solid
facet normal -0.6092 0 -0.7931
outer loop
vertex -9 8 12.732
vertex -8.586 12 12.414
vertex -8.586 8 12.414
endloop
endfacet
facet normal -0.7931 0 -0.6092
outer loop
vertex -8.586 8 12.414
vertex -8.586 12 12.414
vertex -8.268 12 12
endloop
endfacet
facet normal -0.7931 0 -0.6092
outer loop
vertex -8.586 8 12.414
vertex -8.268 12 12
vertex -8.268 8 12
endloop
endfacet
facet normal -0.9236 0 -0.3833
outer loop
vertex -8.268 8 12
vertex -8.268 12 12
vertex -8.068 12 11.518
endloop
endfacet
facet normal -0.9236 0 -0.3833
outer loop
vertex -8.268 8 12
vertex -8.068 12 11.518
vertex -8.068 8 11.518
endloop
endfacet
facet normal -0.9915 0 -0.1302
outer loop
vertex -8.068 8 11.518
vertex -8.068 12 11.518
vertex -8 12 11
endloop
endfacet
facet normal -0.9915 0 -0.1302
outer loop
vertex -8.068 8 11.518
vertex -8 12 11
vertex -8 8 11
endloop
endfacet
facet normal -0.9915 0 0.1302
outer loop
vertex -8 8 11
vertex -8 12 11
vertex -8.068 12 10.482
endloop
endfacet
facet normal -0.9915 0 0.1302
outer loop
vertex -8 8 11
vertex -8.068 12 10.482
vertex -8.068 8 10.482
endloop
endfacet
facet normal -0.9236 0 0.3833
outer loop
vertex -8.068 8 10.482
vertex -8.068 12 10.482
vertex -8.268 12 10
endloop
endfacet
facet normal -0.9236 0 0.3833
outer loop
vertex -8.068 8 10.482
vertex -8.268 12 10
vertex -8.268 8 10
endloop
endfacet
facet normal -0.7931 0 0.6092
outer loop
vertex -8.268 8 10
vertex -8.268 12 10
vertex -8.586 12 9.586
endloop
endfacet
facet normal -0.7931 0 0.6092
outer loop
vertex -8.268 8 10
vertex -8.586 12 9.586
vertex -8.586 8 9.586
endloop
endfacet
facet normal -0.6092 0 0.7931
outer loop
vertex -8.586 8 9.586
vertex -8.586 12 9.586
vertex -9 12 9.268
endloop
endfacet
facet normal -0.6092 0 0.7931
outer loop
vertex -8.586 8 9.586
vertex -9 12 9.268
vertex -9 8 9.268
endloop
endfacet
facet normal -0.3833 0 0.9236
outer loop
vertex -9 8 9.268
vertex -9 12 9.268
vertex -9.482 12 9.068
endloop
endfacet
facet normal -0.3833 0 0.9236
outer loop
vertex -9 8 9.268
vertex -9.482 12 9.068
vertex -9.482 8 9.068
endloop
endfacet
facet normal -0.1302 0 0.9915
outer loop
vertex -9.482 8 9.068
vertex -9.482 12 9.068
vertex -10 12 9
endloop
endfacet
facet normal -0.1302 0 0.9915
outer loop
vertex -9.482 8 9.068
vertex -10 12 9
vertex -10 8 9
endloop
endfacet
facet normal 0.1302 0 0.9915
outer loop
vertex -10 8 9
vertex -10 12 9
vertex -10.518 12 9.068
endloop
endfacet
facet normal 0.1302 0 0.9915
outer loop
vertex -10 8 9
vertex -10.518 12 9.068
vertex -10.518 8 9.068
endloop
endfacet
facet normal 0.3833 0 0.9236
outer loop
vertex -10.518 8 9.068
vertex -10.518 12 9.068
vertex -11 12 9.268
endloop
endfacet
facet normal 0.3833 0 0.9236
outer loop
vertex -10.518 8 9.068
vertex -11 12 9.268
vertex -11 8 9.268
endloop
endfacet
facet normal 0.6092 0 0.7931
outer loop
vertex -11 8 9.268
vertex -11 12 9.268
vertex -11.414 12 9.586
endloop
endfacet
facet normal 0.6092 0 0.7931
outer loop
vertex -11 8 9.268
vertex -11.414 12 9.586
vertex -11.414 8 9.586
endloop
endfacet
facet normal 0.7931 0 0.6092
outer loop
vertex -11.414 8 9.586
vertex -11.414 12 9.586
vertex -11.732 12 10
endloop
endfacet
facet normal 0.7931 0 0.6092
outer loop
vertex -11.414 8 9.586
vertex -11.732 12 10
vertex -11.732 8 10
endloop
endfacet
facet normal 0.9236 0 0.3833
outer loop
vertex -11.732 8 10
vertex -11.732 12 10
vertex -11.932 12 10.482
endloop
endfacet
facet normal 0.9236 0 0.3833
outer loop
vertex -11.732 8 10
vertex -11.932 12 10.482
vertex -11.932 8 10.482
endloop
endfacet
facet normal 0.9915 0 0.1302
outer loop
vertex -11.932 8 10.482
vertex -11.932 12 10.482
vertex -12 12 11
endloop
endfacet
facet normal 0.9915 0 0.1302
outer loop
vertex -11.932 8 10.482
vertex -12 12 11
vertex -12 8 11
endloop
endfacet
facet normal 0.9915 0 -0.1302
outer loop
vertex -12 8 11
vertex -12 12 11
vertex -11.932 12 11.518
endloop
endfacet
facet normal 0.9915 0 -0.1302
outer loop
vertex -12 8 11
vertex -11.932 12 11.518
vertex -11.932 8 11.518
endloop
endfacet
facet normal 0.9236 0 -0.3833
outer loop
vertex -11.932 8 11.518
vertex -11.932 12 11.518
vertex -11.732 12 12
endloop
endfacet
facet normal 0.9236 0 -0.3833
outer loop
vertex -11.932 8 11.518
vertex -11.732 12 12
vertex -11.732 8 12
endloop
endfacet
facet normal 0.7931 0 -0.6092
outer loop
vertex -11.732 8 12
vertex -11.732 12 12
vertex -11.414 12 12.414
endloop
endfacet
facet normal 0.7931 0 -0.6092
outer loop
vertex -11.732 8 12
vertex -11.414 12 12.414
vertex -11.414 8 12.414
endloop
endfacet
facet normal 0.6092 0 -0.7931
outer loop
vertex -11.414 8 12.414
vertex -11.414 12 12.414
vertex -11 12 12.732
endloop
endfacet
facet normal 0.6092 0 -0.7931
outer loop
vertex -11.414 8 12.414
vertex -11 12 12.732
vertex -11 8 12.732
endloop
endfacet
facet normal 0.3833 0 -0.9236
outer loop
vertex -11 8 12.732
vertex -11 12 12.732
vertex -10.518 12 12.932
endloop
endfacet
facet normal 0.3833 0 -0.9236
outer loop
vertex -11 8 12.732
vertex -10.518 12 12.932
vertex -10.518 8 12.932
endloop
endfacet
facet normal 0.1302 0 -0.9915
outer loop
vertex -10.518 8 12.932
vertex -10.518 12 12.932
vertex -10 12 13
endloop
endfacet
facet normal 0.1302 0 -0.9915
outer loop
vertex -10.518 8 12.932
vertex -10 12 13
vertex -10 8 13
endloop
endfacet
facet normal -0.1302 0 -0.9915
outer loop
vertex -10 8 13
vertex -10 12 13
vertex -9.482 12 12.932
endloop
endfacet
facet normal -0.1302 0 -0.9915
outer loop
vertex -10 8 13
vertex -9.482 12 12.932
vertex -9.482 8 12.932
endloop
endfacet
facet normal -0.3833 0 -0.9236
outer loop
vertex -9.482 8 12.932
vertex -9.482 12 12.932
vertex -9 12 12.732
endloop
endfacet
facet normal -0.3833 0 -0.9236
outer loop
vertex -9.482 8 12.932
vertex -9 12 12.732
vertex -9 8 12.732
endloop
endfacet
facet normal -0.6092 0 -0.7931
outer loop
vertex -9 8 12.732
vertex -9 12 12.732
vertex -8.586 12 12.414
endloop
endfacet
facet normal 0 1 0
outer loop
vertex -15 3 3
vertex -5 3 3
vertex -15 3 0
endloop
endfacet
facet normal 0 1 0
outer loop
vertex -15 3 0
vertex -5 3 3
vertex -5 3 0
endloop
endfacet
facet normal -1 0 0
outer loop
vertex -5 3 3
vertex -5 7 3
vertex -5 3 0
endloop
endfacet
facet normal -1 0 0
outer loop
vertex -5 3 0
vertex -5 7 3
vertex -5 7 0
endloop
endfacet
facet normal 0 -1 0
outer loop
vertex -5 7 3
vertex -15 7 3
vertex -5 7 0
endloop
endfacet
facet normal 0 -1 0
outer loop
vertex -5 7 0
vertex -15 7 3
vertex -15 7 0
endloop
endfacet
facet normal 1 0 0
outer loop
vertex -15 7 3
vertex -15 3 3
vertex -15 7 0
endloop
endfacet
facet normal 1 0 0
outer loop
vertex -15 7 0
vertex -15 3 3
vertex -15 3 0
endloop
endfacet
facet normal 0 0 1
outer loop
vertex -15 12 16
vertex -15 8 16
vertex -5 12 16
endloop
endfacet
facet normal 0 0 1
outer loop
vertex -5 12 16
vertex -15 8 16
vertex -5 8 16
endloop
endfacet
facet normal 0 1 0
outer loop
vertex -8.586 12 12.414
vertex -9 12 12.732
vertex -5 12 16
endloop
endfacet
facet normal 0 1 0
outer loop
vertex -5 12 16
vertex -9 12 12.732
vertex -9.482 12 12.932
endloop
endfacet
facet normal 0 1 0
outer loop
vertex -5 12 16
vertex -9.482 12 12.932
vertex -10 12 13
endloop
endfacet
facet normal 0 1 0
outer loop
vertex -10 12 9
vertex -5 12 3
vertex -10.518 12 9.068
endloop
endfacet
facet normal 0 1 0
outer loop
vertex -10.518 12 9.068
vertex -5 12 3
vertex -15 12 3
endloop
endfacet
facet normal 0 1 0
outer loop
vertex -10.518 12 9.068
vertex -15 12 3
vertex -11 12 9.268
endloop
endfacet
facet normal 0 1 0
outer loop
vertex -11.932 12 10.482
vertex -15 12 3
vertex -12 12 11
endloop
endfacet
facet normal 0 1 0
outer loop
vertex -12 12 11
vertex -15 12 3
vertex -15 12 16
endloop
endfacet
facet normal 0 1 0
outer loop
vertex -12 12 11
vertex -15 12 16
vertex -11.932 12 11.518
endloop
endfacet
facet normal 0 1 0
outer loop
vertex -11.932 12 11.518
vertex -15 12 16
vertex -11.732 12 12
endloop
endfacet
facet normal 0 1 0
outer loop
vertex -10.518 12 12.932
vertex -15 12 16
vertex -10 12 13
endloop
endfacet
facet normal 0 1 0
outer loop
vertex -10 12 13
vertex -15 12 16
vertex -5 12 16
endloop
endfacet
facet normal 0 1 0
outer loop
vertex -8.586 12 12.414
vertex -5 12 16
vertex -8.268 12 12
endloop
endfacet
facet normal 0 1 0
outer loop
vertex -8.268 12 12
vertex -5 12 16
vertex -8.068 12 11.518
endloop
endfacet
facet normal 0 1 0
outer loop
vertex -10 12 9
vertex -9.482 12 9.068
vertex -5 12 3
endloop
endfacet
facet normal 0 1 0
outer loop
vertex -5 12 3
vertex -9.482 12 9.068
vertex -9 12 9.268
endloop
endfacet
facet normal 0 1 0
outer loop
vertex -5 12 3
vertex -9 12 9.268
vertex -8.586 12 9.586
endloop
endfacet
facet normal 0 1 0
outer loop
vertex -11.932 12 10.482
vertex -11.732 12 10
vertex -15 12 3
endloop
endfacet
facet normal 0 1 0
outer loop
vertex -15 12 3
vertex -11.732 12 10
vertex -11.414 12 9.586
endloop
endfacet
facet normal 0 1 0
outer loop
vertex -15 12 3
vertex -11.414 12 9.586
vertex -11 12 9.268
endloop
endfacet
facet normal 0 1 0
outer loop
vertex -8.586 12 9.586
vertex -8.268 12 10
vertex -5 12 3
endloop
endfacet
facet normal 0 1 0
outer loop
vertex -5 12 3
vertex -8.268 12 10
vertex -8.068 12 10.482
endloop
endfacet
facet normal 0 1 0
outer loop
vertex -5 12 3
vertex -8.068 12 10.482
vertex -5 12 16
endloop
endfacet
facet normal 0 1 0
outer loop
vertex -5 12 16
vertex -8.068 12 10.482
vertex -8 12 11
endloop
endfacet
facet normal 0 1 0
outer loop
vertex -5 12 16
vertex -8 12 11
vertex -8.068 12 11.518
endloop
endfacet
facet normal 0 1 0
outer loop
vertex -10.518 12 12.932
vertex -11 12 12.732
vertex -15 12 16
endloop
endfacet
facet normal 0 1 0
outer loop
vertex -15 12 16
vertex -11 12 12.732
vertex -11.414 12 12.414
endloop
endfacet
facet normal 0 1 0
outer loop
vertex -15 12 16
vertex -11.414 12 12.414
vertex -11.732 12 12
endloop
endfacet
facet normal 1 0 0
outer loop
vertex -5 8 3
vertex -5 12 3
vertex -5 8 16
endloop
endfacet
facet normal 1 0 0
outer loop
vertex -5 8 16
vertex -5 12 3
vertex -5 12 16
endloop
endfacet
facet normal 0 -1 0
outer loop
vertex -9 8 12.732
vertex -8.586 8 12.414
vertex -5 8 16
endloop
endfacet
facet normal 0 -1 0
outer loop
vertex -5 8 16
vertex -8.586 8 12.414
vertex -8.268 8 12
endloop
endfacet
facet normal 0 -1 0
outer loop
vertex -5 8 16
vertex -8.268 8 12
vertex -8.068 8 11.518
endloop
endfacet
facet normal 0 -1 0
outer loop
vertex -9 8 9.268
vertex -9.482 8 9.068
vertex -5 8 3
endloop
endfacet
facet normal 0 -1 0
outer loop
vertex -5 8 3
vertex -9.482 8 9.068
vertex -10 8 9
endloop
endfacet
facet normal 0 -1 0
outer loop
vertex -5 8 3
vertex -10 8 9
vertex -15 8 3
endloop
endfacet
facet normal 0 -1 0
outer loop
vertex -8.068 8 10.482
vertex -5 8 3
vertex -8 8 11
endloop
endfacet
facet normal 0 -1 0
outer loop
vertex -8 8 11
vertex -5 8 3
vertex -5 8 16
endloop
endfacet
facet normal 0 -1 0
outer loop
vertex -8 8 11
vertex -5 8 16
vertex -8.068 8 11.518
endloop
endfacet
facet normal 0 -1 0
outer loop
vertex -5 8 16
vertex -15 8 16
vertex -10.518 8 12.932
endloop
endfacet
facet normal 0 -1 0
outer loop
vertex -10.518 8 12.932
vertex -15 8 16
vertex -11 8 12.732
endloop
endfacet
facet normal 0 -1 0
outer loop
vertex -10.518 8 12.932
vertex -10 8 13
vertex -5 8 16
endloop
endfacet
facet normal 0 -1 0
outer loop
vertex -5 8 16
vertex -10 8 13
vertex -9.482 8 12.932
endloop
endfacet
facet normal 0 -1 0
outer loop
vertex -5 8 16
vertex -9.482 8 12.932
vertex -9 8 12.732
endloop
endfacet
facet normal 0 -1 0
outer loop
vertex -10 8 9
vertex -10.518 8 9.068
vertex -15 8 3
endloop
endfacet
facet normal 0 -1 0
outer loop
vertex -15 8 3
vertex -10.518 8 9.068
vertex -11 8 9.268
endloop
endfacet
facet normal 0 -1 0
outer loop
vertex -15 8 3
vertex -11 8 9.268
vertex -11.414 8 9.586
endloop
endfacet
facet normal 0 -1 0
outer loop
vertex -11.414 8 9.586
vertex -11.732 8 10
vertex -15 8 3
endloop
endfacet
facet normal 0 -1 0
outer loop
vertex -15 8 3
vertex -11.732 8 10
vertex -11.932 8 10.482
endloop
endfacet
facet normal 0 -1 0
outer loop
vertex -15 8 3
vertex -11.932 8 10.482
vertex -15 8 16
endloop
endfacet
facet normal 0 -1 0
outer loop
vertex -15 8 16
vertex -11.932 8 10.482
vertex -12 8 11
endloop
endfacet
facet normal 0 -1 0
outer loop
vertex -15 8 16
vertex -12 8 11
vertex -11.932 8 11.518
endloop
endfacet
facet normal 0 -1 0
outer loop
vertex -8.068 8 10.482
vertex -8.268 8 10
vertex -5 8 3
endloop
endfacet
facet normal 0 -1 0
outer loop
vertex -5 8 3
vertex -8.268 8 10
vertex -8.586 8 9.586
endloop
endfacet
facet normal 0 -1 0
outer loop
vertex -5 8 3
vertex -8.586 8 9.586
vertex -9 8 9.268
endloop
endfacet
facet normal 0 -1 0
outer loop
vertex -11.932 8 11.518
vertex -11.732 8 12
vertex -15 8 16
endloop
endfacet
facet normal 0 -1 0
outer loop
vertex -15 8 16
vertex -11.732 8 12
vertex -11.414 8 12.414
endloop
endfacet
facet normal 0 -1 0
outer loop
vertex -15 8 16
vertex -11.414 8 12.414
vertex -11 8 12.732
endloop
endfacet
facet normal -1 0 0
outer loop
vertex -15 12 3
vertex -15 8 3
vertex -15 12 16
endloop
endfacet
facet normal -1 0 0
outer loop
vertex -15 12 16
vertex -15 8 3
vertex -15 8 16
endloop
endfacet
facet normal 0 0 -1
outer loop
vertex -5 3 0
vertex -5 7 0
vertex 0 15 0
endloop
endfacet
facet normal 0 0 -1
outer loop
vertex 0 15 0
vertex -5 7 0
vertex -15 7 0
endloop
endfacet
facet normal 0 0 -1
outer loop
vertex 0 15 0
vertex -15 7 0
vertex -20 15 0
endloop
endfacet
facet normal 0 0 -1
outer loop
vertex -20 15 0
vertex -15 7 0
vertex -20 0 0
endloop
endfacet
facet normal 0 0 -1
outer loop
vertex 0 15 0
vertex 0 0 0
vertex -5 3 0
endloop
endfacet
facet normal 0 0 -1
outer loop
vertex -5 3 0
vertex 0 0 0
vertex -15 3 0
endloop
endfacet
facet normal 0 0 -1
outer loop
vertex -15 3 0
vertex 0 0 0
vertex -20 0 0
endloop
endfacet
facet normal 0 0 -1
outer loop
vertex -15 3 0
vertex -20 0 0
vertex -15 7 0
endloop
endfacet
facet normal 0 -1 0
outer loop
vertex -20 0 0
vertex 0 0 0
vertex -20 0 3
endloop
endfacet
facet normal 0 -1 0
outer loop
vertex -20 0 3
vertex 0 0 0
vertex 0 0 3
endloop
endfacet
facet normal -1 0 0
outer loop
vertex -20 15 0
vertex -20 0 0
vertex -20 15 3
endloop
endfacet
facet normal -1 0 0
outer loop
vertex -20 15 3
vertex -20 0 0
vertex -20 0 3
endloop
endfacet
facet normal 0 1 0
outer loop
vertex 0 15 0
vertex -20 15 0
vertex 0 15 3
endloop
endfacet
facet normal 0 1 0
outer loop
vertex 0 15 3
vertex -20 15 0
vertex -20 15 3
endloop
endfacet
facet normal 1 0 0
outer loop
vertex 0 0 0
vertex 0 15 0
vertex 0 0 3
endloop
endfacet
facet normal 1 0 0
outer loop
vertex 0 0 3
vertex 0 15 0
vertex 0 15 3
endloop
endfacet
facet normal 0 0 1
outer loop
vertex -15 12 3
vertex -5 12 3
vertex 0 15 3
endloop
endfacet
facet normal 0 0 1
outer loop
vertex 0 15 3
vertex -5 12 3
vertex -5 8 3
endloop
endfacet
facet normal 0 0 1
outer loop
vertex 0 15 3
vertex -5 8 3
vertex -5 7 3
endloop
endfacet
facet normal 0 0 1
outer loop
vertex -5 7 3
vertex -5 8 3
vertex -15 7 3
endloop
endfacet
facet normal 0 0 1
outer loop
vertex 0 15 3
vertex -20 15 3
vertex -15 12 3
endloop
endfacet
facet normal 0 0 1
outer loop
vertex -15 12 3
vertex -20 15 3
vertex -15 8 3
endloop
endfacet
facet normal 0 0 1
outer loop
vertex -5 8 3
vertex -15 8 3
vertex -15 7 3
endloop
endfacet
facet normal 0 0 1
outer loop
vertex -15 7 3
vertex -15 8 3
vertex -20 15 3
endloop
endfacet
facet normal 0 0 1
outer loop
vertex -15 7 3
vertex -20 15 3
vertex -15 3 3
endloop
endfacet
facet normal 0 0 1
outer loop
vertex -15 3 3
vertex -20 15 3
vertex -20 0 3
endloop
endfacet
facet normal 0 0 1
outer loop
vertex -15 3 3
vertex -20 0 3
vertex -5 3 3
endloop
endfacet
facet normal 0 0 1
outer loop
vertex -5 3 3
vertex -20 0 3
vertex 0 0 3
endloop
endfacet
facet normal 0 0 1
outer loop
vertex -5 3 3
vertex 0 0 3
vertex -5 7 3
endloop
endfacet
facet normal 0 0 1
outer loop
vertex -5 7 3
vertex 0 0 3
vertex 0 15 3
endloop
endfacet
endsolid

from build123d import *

# Parameters (mm, degrees)
SKETCH1_W           = 20
SKETCH1_H           = 15
BOSS_EXTRUDE1_DEPTH = 3
SKETCH2_W           = 10
SKETCH2_H           = 4
BOSS_EXTRUDE2_DEPTH = 13
SKETCH4_W           = 10
SKETCH4_H           = 4
CUT_EXTRUDE3_DEPTH  = 4
SKETCH3_R           = 2
CUT_EXTRUDE4_DEPTH  = 13


with BuildPart() as part:
    # Sketch1 → Boss-Extrude1 (new body)
    with BuildSketch(Plane.XY):
        with Locations((-10, 7.5)):
            Rectangle(SKETCH1_W, SKETCH1_H)
    extrude(amount=BOSS_EXTRUDE1_DEPTH)

    # Sketch2 → Boss-Extrude2 (add)
    with BuildSketch(Plane.XY.offset(3)):
        with Locations((-10, 10)):
            Rectangle(SKETCH2_W, SKETCH2_H)
    extrude(amount=BOSS_EXTRUDE2_DEPTH)

    # Sketch4 → Cut-Extrude3 (cut, through all)
    with BuildSketch(Plane.XY.offset(3)):
        with Locations((-10, 5)):
            Rectangle(SKETCH4_W, SKETCH4_H)
    extrude(amount=-CUT_EXTRUDE3_DEPTH, mode=Mode.SUBTRACT)

    # Sketch3 → Cut-Extrude4 (cut, through all)
    with BuildSketch(Plane(origin=(0, 12, 0), x_dir=(1, 0, 0), z_dir=(0, 1, 0))):
        with Locations((-10, -11)):
            Circle(SKETCH3_R)
    extrude(amount=-CUT_EXTRUDE4_DEPTH, mode=Mode.SUBTRACT)


solid = part.part
